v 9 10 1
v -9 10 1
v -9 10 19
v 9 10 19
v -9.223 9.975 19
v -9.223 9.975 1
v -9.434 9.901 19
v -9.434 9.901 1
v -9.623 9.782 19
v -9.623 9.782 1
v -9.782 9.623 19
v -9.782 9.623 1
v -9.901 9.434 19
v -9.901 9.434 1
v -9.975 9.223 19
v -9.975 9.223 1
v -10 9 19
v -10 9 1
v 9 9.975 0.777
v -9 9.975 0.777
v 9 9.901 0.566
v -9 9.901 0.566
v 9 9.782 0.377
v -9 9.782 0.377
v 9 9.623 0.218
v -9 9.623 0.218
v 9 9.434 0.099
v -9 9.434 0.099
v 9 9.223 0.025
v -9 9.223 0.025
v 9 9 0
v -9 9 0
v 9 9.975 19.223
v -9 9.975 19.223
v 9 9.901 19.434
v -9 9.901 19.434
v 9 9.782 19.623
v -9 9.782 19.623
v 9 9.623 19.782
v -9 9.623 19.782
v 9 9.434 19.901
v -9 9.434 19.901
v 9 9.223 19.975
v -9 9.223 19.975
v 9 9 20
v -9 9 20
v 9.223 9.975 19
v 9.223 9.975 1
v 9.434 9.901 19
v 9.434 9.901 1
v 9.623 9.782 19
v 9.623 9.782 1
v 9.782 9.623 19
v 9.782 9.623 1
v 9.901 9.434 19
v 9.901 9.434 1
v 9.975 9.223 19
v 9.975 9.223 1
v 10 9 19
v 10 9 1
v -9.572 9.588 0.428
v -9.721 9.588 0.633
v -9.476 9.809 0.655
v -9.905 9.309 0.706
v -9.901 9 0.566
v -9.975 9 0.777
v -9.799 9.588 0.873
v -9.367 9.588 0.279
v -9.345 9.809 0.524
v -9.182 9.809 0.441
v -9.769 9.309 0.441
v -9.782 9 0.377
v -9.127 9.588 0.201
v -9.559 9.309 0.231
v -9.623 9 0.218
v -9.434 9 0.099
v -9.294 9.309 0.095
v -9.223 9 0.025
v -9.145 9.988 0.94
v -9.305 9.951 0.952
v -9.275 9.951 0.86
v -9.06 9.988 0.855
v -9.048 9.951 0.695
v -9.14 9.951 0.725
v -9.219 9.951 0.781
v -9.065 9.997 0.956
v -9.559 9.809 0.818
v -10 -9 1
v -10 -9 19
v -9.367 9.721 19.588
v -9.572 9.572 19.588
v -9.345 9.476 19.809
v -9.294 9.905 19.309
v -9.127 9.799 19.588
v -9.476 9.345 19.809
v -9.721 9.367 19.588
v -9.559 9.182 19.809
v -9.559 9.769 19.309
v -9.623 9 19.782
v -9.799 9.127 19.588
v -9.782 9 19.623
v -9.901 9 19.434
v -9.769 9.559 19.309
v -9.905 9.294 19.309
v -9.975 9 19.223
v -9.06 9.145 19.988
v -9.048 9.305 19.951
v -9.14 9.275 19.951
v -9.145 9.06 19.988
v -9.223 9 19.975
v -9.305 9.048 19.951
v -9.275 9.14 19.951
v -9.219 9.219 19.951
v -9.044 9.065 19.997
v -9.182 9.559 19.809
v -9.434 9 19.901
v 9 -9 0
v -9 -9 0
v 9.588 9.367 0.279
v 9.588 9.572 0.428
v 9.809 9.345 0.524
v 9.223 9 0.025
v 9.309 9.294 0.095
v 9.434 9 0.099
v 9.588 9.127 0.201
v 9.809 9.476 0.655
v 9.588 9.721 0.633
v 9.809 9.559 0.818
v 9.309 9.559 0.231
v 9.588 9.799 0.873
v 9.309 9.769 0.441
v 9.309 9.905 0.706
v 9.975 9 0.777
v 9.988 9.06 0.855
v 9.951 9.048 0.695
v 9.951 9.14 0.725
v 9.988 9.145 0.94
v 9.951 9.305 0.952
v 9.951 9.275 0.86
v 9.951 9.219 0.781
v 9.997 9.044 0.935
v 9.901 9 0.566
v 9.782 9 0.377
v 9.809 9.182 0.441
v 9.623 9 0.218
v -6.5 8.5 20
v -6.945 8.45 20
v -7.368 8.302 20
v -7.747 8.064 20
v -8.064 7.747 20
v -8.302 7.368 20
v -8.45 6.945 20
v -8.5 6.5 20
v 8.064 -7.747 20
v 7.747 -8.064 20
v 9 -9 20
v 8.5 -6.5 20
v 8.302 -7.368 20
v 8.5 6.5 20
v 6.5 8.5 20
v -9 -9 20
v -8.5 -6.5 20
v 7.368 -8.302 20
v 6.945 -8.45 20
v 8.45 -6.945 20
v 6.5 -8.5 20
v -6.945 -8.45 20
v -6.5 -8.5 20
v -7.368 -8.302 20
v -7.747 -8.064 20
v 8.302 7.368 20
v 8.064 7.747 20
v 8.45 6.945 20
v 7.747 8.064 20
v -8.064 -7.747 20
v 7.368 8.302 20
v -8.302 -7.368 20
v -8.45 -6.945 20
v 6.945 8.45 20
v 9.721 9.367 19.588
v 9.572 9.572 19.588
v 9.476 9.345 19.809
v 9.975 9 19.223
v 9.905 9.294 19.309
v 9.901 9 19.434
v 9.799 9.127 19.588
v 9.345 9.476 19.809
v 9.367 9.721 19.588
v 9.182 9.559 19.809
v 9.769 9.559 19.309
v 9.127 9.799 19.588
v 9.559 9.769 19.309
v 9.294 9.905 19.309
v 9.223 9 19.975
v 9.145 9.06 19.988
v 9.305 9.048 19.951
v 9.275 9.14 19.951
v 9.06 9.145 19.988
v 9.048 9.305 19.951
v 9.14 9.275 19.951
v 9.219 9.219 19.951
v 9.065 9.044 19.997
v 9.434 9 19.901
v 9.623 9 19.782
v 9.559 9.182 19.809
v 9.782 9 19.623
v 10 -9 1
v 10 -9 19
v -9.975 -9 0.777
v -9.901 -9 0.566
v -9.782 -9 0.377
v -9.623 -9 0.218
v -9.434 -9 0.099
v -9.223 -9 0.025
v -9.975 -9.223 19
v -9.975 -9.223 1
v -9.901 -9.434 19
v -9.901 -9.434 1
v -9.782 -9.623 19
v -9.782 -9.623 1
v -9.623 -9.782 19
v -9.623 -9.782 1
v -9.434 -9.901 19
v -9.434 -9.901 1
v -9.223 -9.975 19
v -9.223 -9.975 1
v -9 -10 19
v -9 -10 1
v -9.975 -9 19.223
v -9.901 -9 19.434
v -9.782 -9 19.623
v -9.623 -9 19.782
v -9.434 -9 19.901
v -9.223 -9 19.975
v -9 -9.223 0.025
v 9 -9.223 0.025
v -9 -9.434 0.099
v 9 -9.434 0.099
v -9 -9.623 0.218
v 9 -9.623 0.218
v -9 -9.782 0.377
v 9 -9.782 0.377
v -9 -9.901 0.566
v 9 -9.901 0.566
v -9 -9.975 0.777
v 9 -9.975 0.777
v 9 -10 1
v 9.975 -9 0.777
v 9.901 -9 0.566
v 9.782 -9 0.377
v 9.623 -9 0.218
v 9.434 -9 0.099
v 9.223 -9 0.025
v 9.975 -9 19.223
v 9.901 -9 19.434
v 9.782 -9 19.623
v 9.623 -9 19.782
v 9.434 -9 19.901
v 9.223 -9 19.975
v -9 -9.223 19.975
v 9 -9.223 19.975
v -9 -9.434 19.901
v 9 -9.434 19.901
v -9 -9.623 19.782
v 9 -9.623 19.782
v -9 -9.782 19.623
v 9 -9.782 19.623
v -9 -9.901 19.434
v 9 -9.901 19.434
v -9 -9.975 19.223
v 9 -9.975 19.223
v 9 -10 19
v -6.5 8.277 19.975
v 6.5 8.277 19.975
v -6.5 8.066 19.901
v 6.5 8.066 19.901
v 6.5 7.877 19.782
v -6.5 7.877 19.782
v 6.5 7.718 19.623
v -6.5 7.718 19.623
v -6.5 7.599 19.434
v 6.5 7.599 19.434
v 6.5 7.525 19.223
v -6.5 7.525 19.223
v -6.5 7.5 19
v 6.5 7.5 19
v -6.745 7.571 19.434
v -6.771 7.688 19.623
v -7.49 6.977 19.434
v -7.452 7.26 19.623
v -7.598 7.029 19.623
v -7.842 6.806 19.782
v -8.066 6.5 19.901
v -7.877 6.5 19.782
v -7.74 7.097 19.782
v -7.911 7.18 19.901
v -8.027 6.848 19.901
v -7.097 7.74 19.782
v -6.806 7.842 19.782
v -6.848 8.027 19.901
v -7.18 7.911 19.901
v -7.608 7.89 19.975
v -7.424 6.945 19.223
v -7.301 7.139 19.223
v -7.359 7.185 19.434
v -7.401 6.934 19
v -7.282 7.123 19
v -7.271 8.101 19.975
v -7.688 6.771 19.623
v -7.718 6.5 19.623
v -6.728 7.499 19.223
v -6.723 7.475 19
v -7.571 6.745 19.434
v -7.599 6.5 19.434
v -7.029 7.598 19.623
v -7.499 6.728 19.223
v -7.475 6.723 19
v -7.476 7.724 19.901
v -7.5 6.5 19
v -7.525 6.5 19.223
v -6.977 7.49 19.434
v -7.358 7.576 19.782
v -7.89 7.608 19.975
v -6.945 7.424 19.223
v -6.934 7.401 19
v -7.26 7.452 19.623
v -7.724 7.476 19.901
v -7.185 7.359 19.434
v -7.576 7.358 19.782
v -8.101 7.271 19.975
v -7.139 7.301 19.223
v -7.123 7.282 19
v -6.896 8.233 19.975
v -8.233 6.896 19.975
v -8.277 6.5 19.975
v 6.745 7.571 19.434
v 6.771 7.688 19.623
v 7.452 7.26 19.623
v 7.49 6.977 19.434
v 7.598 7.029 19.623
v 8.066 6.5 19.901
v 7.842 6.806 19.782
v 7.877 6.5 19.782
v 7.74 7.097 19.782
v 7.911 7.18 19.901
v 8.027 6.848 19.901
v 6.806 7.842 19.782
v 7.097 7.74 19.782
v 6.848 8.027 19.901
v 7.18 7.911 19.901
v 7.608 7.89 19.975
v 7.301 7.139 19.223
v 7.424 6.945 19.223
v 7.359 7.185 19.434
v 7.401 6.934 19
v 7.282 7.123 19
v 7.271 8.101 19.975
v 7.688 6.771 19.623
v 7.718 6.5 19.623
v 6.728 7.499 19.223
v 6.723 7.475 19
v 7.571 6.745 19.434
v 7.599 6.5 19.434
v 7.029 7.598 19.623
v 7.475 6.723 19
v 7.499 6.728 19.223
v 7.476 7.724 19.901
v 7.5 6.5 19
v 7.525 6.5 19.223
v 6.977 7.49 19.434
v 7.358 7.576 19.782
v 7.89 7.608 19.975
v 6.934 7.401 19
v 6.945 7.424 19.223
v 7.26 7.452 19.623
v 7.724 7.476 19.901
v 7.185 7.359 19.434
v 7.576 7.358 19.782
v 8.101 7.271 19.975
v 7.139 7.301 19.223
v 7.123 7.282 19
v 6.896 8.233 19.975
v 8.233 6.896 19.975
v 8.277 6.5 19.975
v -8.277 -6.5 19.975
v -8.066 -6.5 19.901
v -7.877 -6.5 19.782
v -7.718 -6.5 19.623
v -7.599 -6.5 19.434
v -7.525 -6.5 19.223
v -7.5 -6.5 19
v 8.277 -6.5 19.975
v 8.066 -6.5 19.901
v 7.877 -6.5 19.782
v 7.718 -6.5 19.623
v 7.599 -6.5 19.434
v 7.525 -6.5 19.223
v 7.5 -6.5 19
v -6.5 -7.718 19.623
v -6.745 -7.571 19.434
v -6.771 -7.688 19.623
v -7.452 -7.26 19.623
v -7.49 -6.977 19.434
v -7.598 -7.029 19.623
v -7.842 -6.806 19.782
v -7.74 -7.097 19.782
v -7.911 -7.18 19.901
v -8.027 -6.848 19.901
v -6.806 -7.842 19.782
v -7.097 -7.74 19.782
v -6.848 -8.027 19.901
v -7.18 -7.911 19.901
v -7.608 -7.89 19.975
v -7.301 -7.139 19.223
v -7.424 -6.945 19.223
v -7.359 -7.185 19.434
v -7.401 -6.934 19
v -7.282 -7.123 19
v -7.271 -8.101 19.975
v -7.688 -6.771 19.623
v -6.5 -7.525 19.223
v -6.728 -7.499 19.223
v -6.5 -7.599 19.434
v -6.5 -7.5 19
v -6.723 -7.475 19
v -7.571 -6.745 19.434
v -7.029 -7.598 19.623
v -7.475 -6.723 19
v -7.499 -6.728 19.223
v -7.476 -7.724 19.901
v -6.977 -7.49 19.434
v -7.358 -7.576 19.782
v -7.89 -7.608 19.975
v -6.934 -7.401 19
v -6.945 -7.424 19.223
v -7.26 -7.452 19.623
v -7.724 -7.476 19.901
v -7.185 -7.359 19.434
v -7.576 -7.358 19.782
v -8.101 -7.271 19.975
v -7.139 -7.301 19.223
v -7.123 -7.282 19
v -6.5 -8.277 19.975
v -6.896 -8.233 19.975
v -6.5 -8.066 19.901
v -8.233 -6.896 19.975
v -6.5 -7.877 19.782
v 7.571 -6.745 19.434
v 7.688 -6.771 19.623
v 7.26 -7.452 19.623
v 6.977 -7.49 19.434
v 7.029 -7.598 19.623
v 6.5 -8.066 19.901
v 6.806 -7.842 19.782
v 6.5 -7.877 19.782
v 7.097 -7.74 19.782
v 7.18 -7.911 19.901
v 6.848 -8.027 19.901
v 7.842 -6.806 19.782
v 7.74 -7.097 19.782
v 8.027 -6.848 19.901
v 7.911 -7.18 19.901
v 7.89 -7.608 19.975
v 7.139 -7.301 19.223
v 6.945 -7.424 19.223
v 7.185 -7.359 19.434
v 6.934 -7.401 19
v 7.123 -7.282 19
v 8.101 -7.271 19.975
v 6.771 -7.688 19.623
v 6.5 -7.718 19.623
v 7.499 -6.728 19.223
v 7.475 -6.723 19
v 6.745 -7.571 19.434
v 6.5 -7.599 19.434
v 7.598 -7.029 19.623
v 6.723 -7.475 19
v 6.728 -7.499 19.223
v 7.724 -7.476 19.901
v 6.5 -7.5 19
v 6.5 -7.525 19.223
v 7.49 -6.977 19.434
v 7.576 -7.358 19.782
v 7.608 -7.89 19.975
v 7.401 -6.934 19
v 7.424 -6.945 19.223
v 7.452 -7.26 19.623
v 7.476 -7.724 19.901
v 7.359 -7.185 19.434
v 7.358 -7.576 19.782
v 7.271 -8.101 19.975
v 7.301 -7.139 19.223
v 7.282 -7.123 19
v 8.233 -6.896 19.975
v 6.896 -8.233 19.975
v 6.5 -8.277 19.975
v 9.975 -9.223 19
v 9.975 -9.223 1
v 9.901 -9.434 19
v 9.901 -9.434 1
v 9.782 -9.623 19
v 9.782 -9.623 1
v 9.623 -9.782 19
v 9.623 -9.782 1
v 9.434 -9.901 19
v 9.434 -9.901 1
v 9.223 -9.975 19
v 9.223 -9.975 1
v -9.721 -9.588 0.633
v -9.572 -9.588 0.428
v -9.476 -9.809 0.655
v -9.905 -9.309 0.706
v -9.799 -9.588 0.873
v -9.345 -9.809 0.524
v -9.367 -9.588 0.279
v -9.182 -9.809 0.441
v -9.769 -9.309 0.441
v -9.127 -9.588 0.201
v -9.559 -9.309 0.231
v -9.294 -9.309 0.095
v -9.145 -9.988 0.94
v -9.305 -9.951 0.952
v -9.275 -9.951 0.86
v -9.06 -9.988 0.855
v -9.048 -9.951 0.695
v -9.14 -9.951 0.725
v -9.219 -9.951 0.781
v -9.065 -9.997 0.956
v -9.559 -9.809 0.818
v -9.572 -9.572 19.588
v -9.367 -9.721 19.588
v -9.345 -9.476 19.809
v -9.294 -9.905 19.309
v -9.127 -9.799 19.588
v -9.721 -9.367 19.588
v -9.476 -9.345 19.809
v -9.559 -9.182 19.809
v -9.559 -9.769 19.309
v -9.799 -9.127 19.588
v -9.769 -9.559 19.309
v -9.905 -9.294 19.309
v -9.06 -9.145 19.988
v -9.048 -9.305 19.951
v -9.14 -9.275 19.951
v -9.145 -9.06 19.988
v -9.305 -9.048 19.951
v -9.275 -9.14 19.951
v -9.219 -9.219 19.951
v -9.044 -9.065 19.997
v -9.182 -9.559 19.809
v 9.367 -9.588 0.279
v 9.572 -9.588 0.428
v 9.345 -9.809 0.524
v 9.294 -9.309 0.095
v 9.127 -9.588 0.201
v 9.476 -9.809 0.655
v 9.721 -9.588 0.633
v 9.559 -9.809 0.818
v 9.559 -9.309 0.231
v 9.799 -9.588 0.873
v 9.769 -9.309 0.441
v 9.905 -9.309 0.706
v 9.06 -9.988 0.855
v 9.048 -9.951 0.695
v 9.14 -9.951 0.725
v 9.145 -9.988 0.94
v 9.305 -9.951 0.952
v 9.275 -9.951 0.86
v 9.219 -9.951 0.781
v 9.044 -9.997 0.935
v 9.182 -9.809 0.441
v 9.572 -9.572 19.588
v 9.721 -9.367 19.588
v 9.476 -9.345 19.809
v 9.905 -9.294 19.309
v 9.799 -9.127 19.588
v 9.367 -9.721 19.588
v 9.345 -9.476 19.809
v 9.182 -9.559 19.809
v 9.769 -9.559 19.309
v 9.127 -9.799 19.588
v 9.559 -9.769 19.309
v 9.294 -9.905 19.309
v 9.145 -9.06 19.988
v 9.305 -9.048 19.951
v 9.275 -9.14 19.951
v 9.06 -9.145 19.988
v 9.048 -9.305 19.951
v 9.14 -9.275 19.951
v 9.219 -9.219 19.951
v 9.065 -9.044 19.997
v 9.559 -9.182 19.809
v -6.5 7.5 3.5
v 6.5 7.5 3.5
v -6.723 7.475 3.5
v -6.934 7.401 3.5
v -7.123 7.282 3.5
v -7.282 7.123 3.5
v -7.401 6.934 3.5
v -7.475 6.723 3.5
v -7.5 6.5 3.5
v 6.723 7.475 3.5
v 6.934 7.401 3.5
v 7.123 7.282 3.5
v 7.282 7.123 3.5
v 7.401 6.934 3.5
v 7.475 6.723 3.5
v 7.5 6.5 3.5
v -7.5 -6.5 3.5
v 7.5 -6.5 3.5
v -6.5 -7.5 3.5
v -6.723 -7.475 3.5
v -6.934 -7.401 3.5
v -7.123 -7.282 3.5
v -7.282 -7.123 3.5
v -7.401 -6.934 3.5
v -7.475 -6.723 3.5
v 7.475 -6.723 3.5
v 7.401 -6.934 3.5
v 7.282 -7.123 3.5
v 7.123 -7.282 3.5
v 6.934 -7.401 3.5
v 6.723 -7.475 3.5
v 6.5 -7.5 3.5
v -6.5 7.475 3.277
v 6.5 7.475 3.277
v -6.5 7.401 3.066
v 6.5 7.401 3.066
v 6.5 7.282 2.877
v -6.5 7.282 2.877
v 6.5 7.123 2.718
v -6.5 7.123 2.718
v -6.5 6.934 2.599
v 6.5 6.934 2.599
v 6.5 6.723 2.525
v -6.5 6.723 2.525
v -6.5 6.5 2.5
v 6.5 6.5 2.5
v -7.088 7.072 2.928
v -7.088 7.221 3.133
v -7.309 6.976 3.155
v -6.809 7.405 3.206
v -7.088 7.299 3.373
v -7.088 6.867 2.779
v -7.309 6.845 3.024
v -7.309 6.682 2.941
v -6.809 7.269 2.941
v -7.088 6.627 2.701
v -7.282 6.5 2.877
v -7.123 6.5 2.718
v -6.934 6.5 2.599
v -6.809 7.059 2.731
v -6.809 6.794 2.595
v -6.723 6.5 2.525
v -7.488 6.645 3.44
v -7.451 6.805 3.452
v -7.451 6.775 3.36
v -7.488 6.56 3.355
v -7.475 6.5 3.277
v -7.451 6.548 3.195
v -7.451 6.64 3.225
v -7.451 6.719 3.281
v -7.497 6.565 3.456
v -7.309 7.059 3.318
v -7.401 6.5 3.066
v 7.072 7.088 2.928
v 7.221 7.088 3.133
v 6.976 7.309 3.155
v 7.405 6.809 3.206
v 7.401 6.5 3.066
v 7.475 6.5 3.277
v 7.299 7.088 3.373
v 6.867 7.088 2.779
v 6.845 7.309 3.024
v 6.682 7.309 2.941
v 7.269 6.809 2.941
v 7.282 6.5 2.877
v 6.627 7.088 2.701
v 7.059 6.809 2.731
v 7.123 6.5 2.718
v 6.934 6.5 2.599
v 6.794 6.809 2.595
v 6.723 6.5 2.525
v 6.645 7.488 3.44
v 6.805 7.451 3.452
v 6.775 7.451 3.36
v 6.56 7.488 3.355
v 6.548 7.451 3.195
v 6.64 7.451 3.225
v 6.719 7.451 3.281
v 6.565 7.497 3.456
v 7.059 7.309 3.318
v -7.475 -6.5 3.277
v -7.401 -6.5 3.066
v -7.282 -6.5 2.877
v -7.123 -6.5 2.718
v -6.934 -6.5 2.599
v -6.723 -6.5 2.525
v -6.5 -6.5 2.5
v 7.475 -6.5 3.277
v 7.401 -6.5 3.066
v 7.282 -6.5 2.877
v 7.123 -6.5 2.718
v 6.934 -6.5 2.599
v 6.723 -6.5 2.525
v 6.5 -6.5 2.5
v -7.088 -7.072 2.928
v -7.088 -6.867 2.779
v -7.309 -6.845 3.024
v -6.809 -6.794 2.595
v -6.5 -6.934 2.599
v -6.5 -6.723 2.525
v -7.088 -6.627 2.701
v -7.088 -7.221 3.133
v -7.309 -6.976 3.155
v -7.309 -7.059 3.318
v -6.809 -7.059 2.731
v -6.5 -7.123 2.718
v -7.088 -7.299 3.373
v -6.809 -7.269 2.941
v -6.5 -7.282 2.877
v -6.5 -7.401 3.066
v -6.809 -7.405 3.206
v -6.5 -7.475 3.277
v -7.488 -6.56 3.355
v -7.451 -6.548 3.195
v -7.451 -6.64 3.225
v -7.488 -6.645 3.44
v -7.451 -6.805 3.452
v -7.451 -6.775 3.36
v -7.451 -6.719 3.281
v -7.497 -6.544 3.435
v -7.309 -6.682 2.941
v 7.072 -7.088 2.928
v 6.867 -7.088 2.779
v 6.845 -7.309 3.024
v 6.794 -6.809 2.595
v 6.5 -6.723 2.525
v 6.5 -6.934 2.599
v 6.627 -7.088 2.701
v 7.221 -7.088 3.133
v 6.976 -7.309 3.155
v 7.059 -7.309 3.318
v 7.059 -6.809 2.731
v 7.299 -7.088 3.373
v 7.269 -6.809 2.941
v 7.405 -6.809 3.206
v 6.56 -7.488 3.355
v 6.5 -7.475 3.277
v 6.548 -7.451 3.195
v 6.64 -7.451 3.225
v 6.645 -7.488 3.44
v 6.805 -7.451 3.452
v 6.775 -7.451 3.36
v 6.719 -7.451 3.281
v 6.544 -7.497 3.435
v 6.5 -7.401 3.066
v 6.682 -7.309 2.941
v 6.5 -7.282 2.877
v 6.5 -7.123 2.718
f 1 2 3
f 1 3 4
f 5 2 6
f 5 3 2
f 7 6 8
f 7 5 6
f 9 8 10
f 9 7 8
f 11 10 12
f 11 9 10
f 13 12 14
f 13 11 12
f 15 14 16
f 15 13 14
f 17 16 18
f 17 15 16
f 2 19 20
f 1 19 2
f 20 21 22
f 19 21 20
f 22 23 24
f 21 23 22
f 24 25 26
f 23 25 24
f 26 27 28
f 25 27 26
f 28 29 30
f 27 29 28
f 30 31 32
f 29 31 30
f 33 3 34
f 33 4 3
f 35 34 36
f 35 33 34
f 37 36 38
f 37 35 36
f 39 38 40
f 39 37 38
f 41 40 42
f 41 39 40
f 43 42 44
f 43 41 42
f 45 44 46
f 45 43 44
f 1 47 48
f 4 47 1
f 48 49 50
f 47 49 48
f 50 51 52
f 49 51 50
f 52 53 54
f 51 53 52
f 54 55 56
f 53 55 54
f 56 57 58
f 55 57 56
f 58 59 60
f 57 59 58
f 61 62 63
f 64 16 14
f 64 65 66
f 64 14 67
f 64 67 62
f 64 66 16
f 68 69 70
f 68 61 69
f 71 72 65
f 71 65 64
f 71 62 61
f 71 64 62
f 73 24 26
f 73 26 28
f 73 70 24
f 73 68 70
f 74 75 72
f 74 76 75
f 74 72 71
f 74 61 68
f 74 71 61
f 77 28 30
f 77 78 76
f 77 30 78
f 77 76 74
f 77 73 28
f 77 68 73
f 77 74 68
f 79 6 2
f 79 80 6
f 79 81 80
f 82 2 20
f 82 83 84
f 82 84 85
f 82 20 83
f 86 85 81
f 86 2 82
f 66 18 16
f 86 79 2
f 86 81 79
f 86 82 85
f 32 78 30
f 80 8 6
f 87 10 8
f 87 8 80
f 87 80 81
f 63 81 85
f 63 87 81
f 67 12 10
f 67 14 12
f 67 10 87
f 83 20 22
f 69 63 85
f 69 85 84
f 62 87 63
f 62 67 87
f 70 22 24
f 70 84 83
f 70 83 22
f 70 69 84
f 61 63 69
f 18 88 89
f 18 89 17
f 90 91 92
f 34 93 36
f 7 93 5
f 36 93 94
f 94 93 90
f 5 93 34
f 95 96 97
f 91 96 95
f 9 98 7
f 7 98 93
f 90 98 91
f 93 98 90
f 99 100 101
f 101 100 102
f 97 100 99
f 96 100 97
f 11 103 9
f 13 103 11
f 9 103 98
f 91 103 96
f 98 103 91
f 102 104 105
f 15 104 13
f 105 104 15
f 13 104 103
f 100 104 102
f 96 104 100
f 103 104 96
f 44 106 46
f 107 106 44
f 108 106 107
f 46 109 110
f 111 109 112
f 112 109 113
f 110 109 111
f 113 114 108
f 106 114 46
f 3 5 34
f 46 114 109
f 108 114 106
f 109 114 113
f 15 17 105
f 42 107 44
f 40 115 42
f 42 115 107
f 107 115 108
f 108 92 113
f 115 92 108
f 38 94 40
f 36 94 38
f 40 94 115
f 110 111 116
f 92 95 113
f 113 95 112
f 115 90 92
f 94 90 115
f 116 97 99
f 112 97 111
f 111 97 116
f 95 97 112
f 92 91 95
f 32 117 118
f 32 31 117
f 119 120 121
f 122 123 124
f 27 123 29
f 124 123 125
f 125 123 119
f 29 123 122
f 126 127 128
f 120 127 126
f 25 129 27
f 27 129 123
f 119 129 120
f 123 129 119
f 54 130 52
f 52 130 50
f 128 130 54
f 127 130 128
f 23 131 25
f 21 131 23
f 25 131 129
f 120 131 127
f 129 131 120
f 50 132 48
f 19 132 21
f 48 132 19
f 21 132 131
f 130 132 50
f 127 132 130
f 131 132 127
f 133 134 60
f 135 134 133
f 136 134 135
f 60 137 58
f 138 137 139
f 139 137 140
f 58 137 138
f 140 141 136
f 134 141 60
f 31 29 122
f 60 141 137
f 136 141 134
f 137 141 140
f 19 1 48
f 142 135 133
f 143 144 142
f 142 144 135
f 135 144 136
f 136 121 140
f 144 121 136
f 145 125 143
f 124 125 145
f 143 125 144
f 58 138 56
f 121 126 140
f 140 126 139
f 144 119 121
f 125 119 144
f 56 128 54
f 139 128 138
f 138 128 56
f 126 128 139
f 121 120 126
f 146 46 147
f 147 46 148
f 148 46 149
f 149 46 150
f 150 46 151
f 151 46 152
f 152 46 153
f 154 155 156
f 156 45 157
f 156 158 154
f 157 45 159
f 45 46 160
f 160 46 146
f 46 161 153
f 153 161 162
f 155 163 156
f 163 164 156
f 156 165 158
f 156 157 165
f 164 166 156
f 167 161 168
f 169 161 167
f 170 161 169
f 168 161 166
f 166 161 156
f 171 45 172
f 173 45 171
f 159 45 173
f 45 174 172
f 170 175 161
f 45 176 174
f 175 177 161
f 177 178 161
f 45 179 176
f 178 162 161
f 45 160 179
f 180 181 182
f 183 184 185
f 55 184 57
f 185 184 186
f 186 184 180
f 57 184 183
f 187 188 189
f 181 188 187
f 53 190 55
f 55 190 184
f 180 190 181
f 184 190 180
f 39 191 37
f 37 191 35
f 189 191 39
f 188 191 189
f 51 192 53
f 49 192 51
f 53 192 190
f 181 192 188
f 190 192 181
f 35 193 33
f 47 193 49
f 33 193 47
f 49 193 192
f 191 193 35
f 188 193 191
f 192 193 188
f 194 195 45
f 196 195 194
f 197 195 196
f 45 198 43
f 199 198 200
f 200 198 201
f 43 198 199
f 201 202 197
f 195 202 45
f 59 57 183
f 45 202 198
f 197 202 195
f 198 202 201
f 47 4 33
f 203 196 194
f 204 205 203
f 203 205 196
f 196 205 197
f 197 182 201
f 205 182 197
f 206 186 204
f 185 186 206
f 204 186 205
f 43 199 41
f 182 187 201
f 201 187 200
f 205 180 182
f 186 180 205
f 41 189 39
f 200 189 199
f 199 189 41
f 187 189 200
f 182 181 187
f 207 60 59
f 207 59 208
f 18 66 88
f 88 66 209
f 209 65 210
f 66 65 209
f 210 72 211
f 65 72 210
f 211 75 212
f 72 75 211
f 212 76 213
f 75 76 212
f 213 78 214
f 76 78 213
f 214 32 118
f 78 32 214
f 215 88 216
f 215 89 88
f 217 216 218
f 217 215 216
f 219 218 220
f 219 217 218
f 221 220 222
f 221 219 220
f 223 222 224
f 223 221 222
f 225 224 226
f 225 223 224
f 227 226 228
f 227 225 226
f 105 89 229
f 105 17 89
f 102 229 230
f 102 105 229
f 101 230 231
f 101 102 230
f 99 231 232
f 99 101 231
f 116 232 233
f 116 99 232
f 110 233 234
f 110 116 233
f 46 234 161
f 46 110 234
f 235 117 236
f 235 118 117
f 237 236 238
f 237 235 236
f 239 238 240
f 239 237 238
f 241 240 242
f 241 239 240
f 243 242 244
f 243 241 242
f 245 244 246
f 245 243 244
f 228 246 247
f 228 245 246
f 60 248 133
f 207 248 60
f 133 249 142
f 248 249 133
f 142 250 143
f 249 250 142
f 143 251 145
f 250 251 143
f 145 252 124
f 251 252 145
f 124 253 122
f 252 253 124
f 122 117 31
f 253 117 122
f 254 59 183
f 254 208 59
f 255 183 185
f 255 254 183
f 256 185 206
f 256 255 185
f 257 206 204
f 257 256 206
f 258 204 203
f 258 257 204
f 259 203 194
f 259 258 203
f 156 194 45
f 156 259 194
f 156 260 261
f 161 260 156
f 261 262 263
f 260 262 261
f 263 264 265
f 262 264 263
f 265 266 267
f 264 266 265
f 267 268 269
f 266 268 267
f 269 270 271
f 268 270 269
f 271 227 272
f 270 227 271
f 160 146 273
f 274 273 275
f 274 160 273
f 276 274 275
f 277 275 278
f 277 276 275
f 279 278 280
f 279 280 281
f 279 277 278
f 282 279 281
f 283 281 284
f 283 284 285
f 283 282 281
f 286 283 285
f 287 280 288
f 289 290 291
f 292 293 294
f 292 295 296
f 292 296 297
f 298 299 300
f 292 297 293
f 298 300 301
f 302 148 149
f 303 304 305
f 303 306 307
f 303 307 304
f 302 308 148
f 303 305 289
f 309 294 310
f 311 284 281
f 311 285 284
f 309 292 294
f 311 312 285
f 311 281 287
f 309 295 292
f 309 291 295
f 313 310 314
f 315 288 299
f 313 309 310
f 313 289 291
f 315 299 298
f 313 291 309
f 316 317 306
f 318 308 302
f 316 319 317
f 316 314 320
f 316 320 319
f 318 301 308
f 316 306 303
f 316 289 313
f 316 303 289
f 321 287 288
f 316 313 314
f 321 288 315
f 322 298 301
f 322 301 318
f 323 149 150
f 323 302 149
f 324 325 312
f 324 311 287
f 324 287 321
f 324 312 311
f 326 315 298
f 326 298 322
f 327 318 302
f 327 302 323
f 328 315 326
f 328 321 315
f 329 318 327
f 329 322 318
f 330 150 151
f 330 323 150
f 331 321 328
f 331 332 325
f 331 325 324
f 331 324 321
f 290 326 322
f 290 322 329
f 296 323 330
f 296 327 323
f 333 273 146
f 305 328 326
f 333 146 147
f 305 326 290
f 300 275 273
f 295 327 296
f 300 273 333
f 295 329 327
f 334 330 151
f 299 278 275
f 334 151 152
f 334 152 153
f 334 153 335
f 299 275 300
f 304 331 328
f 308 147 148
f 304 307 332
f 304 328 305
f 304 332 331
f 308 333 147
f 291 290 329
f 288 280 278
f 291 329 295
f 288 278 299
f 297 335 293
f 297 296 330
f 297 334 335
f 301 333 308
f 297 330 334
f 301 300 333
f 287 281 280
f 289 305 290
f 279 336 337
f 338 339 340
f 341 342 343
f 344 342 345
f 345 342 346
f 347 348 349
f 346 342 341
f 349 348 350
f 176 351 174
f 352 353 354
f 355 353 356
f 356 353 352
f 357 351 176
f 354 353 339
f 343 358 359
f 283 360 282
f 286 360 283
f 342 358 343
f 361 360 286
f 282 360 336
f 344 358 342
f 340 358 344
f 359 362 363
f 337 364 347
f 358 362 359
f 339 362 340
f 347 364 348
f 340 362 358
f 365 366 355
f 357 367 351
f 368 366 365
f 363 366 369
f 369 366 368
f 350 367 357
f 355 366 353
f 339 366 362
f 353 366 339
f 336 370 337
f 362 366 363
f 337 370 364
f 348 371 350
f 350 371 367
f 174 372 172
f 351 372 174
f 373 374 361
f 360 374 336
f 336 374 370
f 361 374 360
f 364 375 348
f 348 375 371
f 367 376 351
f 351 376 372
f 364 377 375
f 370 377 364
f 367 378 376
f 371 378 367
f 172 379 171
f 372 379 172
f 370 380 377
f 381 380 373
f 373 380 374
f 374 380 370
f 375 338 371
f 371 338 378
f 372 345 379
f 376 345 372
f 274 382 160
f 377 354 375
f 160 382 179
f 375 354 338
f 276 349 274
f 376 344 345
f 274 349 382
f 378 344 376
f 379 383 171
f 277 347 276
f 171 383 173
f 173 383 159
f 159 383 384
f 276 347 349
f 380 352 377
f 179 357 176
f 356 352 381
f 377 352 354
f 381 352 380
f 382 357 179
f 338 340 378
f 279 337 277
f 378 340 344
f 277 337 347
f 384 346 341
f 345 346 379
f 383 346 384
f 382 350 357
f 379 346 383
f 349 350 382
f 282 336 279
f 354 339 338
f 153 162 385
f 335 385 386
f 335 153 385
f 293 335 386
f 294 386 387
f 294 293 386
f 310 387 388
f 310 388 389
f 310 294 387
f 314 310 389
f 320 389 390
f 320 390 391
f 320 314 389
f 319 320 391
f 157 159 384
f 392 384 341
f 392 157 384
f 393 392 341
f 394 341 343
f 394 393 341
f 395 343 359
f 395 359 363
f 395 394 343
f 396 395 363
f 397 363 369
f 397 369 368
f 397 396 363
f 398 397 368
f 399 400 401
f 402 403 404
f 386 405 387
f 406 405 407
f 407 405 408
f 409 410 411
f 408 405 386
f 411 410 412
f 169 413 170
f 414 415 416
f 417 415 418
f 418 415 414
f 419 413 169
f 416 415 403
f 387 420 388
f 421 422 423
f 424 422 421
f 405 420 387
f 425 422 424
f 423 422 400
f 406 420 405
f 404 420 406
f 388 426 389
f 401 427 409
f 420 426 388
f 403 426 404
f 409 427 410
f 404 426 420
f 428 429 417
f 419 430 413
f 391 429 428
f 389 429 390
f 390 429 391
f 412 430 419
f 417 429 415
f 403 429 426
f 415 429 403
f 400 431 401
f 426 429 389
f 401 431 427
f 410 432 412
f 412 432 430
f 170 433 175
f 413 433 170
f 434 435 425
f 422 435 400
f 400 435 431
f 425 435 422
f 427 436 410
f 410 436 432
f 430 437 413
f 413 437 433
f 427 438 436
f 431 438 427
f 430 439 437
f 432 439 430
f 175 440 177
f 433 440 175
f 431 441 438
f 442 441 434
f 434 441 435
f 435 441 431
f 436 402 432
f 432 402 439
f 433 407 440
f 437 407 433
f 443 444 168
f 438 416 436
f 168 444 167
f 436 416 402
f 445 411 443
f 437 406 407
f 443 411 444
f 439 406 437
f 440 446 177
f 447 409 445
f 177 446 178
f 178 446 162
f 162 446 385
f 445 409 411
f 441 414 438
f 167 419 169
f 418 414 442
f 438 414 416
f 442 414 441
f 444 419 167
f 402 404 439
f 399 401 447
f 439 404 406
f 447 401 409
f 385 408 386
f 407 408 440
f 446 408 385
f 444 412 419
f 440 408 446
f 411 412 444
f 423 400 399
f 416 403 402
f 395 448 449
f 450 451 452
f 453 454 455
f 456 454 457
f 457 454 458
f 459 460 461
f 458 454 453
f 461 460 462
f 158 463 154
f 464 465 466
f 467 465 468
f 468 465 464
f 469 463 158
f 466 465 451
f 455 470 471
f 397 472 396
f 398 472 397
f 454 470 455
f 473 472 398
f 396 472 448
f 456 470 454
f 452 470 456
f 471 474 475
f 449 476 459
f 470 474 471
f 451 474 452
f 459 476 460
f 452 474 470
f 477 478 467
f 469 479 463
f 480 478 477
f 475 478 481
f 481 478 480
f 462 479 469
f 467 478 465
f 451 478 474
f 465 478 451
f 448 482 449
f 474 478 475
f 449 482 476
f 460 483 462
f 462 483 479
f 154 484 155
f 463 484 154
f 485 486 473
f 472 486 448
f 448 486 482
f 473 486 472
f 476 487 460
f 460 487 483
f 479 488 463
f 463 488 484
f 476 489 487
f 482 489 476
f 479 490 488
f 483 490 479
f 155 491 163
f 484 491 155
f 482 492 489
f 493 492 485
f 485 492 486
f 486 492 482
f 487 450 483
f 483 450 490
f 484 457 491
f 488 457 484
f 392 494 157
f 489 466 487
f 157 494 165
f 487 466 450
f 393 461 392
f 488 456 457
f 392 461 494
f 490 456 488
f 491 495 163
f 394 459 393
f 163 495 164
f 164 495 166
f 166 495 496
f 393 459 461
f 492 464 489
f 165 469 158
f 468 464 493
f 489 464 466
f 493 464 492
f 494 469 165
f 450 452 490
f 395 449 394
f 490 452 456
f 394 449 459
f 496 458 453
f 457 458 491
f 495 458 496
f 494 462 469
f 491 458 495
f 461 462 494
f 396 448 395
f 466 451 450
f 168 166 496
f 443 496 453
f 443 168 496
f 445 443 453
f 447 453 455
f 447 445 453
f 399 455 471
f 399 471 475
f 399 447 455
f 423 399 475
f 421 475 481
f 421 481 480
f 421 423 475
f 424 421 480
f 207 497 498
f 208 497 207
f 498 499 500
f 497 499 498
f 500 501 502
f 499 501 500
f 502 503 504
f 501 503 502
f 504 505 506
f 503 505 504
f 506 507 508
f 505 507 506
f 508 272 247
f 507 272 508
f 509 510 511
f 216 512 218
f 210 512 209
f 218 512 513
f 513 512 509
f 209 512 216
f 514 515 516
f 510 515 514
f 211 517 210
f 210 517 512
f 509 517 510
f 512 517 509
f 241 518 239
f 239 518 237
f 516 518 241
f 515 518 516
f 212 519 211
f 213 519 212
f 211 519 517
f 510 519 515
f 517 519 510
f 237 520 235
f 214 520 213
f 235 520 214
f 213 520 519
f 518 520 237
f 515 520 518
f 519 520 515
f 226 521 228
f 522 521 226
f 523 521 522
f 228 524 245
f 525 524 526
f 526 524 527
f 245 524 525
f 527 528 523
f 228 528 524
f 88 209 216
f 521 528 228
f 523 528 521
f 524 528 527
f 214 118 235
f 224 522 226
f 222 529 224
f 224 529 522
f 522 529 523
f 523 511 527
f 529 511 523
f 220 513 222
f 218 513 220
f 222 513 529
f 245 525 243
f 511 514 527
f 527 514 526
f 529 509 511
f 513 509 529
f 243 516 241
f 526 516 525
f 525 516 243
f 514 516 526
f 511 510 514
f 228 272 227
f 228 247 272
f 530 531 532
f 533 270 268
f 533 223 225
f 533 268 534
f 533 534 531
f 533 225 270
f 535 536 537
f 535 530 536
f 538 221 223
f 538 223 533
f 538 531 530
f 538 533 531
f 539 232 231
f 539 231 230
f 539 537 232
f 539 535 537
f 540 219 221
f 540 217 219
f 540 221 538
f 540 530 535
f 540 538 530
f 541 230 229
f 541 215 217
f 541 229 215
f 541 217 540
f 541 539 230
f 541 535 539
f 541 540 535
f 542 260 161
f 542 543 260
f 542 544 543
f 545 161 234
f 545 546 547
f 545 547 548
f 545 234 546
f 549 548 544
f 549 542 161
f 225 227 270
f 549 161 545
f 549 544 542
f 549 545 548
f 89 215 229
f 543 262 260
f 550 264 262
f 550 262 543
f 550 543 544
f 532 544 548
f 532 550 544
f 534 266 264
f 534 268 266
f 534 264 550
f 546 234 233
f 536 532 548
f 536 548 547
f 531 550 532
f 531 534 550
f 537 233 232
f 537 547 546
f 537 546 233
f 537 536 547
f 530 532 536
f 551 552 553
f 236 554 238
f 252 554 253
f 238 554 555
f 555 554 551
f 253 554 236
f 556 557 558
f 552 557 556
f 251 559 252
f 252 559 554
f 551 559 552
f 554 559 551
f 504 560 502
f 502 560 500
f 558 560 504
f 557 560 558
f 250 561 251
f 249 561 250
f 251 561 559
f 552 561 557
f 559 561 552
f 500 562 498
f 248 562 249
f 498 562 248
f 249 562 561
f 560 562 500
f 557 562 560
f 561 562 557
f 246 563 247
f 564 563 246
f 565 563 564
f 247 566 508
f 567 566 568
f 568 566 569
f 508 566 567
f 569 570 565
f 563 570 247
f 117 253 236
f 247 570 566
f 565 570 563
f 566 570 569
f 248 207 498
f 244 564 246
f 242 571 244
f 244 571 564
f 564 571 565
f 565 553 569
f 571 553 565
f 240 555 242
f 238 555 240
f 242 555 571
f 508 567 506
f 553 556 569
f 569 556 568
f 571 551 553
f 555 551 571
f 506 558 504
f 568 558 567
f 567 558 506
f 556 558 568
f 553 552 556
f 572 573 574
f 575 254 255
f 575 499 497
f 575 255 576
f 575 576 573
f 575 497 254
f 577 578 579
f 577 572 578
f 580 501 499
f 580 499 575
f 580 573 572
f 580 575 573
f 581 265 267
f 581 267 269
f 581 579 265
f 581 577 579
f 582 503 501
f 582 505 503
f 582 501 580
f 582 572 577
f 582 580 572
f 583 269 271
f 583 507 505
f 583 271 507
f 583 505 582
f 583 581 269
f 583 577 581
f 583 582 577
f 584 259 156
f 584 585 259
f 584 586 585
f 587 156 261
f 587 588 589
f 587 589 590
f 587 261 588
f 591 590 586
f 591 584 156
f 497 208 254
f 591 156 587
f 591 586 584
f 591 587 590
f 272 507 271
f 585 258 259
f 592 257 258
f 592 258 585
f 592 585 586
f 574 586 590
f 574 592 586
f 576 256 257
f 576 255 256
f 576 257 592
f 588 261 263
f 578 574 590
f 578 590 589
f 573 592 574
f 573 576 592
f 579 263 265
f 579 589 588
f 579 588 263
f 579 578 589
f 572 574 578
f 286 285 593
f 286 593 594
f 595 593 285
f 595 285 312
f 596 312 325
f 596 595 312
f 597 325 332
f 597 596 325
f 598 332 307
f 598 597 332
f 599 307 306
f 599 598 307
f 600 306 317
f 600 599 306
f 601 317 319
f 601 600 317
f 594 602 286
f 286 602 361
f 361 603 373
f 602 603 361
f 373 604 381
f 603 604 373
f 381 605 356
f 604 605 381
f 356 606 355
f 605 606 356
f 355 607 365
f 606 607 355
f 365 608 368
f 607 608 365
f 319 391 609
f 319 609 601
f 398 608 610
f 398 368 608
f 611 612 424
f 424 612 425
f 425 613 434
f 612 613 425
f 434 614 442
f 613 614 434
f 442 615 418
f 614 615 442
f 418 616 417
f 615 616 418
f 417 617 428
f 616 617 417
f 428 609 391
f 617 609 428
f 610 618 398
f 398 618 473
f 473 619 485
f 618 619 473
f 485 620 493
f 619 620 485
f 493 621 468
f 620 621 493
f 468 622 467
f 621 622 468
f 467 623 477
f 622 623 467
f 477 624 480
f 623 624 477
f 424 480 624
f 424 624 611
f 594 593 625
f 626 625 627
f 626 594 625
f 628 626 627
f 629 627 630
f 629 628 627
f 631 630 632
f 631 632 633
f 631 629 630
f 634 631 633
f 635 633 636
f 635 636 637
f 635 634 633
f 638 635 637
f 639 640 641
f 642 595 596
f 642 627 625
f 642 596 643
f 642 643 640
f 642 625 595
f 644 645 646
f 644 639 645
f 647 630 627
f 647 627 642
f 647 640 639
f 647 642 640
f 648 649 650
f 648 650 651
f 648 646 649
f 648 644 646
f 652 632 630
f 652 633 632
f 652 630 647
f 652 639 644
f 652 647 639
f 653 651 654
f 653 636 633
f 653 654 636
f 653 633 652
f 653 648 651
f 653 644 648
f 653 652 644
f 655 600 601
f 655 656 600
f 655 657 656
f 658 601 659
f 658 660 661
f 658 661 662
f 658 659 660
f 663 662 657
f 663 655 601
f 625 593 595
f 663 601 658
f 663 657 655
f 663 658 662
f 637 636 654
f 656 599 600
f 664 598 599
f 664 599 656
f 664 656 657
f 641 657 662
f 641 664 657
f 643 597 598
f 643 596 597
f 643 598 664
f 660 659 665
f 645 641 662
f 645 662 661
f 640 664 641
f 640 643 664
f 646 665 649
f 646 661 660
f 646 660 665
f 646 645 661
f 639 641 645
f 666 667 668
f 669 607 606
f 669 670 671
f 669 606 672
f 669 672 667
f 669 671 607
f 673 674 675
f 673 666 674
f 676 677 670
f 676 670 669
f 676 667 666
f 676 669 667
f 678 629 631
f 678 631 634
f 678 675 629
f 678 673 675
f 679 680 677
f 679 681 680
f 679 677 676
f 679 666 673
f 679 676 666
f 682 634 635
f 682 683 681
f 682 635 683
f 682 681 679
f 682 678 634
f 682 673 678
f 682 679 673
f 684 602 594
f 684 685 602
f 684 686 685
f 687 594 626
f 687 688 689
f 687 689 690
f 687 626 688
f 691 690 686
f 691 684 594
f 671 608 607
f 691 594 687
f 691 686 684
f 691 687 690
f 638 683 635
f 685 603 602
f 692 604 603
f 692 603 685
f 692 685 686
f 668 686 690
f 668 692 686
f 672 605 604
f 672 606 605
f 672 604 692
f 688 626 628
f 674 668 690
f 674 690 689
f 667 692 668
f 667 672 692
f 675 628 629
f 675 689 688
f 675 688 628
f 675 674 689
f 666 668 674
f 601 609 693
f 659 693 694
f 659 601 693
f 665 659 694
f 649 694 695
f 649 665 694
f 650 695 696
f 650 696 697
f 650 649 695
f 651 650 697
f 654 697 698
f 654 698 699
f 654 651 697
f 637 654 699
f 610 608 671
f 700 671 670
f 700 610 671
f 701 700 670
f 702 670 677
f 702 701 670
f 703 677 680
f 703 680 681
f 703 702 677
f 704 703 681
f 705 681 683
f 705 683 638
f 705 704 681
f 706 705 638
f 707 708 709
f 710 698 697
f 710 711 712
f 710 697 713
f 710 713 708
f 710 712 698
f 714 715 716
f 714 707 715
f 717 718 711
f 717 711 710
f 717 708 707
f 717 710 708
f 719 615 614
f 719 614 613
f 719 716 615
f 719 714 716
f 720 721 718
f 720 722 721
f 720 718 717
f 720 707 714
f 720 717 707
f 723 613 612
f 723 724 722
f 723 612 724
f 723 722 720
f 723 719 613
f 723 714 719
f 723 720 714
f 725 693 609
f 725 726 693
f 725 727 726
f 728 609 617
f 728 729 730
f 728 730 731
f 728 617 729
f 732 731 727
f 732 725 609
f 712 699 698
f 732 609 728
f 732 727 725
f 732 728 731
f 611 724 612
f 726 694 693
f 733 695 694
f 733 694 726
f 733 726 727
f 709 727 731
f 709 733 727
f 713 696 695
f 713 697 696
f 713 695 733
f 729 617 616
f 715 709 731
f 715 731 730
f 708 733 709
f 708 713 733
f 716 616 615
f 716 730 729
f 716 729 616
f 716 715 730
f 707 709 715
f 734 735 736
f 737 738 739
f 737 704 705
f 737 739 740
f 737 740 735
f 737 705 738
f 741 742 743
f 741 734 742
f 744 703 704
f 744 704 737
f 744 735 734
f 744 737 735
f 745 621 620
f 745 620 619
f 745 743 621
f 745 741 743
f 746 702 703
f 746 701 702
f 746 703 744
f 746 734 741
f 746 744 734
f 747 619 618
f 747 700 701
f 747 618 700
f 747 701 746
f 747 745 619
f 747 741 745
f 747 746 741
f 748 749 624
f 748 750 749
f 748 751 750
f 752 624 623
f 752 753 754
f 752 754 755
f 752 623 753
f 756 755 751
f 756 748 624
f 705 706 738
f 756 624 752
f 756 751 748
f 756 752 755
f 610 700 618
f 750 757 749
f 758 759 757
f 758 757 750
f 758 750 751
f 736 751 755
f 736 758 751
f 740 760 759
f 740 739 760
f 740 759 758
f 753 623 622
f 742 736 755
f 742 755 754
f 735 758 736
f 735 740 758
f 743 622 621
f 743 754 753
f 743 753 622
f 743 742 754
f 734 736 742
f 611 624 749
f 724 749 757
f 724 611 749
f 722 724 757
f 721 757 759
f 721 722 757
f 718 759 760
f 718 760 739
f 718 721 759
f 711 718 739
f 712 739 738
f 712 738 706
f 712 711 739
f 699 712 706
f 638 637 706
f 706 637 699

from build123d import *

# Parameters (mm, degrees)
SKETCH_W     = 20
SKETCH_H     = 20
PAD_DEPTH    = 20
SKETCH001_W  = 15
SKETCH001_H  = 15
POCKET_DEPTH = 17.5
FILLET_R     = 1


with BuildPart() as part:
    # Sketch → Pad (new body)
    with BuildSketch(Plane.XY):
        Rectangle(SKETCH_W, SKETCH_H)
    extrude(amount=PAD_DEPTH)

    # Sketch001 (on Face6 of Pad) → Pocket (cut)
    with BuildSketch(Plane.XY.offset(20)):
        Rectangle(SKETCH001_W, SKETCH001_H)
    extrude(amount=-POCKET_DEPTH, mode=Mode.SUBTRACT)

    # Fillet
    fillet_edges = [part.edges().sort_by_distance(p)[0] for p in [
        (-10, 0, 0),
        (-10, -10, 10),
        (-10, 10, 10),
        (0, 10, 0),
        (10, 0, 0),
        (0, -10, 0),
        (10, -10, 10),
        (10, 10, 10),
        (10, 0, 20),
        (0, 10, 20),
        (0, 7.5, 20),
        (7.5, 0, 2.5),
        (7.5, 0, 20),
        (0, -7.5, 20),
        (0, -10, 20),
        (-10, 0, 20),
        (0, -7.5, 2.5),
        (-7.5, 0, 20),
        (7.5, -7.5, 11.25),
        (7.5, 7.5, 11.25),
        (0, 7.5, 2.5),
        (-7.5, 7.5, 11.25),
        (-7.5, 0, 2.5),
        (-7.5, -7.5, 11.25),
    ]]
    fillet(fillet_edges, radius=FILLET_R)


solid = part.part
